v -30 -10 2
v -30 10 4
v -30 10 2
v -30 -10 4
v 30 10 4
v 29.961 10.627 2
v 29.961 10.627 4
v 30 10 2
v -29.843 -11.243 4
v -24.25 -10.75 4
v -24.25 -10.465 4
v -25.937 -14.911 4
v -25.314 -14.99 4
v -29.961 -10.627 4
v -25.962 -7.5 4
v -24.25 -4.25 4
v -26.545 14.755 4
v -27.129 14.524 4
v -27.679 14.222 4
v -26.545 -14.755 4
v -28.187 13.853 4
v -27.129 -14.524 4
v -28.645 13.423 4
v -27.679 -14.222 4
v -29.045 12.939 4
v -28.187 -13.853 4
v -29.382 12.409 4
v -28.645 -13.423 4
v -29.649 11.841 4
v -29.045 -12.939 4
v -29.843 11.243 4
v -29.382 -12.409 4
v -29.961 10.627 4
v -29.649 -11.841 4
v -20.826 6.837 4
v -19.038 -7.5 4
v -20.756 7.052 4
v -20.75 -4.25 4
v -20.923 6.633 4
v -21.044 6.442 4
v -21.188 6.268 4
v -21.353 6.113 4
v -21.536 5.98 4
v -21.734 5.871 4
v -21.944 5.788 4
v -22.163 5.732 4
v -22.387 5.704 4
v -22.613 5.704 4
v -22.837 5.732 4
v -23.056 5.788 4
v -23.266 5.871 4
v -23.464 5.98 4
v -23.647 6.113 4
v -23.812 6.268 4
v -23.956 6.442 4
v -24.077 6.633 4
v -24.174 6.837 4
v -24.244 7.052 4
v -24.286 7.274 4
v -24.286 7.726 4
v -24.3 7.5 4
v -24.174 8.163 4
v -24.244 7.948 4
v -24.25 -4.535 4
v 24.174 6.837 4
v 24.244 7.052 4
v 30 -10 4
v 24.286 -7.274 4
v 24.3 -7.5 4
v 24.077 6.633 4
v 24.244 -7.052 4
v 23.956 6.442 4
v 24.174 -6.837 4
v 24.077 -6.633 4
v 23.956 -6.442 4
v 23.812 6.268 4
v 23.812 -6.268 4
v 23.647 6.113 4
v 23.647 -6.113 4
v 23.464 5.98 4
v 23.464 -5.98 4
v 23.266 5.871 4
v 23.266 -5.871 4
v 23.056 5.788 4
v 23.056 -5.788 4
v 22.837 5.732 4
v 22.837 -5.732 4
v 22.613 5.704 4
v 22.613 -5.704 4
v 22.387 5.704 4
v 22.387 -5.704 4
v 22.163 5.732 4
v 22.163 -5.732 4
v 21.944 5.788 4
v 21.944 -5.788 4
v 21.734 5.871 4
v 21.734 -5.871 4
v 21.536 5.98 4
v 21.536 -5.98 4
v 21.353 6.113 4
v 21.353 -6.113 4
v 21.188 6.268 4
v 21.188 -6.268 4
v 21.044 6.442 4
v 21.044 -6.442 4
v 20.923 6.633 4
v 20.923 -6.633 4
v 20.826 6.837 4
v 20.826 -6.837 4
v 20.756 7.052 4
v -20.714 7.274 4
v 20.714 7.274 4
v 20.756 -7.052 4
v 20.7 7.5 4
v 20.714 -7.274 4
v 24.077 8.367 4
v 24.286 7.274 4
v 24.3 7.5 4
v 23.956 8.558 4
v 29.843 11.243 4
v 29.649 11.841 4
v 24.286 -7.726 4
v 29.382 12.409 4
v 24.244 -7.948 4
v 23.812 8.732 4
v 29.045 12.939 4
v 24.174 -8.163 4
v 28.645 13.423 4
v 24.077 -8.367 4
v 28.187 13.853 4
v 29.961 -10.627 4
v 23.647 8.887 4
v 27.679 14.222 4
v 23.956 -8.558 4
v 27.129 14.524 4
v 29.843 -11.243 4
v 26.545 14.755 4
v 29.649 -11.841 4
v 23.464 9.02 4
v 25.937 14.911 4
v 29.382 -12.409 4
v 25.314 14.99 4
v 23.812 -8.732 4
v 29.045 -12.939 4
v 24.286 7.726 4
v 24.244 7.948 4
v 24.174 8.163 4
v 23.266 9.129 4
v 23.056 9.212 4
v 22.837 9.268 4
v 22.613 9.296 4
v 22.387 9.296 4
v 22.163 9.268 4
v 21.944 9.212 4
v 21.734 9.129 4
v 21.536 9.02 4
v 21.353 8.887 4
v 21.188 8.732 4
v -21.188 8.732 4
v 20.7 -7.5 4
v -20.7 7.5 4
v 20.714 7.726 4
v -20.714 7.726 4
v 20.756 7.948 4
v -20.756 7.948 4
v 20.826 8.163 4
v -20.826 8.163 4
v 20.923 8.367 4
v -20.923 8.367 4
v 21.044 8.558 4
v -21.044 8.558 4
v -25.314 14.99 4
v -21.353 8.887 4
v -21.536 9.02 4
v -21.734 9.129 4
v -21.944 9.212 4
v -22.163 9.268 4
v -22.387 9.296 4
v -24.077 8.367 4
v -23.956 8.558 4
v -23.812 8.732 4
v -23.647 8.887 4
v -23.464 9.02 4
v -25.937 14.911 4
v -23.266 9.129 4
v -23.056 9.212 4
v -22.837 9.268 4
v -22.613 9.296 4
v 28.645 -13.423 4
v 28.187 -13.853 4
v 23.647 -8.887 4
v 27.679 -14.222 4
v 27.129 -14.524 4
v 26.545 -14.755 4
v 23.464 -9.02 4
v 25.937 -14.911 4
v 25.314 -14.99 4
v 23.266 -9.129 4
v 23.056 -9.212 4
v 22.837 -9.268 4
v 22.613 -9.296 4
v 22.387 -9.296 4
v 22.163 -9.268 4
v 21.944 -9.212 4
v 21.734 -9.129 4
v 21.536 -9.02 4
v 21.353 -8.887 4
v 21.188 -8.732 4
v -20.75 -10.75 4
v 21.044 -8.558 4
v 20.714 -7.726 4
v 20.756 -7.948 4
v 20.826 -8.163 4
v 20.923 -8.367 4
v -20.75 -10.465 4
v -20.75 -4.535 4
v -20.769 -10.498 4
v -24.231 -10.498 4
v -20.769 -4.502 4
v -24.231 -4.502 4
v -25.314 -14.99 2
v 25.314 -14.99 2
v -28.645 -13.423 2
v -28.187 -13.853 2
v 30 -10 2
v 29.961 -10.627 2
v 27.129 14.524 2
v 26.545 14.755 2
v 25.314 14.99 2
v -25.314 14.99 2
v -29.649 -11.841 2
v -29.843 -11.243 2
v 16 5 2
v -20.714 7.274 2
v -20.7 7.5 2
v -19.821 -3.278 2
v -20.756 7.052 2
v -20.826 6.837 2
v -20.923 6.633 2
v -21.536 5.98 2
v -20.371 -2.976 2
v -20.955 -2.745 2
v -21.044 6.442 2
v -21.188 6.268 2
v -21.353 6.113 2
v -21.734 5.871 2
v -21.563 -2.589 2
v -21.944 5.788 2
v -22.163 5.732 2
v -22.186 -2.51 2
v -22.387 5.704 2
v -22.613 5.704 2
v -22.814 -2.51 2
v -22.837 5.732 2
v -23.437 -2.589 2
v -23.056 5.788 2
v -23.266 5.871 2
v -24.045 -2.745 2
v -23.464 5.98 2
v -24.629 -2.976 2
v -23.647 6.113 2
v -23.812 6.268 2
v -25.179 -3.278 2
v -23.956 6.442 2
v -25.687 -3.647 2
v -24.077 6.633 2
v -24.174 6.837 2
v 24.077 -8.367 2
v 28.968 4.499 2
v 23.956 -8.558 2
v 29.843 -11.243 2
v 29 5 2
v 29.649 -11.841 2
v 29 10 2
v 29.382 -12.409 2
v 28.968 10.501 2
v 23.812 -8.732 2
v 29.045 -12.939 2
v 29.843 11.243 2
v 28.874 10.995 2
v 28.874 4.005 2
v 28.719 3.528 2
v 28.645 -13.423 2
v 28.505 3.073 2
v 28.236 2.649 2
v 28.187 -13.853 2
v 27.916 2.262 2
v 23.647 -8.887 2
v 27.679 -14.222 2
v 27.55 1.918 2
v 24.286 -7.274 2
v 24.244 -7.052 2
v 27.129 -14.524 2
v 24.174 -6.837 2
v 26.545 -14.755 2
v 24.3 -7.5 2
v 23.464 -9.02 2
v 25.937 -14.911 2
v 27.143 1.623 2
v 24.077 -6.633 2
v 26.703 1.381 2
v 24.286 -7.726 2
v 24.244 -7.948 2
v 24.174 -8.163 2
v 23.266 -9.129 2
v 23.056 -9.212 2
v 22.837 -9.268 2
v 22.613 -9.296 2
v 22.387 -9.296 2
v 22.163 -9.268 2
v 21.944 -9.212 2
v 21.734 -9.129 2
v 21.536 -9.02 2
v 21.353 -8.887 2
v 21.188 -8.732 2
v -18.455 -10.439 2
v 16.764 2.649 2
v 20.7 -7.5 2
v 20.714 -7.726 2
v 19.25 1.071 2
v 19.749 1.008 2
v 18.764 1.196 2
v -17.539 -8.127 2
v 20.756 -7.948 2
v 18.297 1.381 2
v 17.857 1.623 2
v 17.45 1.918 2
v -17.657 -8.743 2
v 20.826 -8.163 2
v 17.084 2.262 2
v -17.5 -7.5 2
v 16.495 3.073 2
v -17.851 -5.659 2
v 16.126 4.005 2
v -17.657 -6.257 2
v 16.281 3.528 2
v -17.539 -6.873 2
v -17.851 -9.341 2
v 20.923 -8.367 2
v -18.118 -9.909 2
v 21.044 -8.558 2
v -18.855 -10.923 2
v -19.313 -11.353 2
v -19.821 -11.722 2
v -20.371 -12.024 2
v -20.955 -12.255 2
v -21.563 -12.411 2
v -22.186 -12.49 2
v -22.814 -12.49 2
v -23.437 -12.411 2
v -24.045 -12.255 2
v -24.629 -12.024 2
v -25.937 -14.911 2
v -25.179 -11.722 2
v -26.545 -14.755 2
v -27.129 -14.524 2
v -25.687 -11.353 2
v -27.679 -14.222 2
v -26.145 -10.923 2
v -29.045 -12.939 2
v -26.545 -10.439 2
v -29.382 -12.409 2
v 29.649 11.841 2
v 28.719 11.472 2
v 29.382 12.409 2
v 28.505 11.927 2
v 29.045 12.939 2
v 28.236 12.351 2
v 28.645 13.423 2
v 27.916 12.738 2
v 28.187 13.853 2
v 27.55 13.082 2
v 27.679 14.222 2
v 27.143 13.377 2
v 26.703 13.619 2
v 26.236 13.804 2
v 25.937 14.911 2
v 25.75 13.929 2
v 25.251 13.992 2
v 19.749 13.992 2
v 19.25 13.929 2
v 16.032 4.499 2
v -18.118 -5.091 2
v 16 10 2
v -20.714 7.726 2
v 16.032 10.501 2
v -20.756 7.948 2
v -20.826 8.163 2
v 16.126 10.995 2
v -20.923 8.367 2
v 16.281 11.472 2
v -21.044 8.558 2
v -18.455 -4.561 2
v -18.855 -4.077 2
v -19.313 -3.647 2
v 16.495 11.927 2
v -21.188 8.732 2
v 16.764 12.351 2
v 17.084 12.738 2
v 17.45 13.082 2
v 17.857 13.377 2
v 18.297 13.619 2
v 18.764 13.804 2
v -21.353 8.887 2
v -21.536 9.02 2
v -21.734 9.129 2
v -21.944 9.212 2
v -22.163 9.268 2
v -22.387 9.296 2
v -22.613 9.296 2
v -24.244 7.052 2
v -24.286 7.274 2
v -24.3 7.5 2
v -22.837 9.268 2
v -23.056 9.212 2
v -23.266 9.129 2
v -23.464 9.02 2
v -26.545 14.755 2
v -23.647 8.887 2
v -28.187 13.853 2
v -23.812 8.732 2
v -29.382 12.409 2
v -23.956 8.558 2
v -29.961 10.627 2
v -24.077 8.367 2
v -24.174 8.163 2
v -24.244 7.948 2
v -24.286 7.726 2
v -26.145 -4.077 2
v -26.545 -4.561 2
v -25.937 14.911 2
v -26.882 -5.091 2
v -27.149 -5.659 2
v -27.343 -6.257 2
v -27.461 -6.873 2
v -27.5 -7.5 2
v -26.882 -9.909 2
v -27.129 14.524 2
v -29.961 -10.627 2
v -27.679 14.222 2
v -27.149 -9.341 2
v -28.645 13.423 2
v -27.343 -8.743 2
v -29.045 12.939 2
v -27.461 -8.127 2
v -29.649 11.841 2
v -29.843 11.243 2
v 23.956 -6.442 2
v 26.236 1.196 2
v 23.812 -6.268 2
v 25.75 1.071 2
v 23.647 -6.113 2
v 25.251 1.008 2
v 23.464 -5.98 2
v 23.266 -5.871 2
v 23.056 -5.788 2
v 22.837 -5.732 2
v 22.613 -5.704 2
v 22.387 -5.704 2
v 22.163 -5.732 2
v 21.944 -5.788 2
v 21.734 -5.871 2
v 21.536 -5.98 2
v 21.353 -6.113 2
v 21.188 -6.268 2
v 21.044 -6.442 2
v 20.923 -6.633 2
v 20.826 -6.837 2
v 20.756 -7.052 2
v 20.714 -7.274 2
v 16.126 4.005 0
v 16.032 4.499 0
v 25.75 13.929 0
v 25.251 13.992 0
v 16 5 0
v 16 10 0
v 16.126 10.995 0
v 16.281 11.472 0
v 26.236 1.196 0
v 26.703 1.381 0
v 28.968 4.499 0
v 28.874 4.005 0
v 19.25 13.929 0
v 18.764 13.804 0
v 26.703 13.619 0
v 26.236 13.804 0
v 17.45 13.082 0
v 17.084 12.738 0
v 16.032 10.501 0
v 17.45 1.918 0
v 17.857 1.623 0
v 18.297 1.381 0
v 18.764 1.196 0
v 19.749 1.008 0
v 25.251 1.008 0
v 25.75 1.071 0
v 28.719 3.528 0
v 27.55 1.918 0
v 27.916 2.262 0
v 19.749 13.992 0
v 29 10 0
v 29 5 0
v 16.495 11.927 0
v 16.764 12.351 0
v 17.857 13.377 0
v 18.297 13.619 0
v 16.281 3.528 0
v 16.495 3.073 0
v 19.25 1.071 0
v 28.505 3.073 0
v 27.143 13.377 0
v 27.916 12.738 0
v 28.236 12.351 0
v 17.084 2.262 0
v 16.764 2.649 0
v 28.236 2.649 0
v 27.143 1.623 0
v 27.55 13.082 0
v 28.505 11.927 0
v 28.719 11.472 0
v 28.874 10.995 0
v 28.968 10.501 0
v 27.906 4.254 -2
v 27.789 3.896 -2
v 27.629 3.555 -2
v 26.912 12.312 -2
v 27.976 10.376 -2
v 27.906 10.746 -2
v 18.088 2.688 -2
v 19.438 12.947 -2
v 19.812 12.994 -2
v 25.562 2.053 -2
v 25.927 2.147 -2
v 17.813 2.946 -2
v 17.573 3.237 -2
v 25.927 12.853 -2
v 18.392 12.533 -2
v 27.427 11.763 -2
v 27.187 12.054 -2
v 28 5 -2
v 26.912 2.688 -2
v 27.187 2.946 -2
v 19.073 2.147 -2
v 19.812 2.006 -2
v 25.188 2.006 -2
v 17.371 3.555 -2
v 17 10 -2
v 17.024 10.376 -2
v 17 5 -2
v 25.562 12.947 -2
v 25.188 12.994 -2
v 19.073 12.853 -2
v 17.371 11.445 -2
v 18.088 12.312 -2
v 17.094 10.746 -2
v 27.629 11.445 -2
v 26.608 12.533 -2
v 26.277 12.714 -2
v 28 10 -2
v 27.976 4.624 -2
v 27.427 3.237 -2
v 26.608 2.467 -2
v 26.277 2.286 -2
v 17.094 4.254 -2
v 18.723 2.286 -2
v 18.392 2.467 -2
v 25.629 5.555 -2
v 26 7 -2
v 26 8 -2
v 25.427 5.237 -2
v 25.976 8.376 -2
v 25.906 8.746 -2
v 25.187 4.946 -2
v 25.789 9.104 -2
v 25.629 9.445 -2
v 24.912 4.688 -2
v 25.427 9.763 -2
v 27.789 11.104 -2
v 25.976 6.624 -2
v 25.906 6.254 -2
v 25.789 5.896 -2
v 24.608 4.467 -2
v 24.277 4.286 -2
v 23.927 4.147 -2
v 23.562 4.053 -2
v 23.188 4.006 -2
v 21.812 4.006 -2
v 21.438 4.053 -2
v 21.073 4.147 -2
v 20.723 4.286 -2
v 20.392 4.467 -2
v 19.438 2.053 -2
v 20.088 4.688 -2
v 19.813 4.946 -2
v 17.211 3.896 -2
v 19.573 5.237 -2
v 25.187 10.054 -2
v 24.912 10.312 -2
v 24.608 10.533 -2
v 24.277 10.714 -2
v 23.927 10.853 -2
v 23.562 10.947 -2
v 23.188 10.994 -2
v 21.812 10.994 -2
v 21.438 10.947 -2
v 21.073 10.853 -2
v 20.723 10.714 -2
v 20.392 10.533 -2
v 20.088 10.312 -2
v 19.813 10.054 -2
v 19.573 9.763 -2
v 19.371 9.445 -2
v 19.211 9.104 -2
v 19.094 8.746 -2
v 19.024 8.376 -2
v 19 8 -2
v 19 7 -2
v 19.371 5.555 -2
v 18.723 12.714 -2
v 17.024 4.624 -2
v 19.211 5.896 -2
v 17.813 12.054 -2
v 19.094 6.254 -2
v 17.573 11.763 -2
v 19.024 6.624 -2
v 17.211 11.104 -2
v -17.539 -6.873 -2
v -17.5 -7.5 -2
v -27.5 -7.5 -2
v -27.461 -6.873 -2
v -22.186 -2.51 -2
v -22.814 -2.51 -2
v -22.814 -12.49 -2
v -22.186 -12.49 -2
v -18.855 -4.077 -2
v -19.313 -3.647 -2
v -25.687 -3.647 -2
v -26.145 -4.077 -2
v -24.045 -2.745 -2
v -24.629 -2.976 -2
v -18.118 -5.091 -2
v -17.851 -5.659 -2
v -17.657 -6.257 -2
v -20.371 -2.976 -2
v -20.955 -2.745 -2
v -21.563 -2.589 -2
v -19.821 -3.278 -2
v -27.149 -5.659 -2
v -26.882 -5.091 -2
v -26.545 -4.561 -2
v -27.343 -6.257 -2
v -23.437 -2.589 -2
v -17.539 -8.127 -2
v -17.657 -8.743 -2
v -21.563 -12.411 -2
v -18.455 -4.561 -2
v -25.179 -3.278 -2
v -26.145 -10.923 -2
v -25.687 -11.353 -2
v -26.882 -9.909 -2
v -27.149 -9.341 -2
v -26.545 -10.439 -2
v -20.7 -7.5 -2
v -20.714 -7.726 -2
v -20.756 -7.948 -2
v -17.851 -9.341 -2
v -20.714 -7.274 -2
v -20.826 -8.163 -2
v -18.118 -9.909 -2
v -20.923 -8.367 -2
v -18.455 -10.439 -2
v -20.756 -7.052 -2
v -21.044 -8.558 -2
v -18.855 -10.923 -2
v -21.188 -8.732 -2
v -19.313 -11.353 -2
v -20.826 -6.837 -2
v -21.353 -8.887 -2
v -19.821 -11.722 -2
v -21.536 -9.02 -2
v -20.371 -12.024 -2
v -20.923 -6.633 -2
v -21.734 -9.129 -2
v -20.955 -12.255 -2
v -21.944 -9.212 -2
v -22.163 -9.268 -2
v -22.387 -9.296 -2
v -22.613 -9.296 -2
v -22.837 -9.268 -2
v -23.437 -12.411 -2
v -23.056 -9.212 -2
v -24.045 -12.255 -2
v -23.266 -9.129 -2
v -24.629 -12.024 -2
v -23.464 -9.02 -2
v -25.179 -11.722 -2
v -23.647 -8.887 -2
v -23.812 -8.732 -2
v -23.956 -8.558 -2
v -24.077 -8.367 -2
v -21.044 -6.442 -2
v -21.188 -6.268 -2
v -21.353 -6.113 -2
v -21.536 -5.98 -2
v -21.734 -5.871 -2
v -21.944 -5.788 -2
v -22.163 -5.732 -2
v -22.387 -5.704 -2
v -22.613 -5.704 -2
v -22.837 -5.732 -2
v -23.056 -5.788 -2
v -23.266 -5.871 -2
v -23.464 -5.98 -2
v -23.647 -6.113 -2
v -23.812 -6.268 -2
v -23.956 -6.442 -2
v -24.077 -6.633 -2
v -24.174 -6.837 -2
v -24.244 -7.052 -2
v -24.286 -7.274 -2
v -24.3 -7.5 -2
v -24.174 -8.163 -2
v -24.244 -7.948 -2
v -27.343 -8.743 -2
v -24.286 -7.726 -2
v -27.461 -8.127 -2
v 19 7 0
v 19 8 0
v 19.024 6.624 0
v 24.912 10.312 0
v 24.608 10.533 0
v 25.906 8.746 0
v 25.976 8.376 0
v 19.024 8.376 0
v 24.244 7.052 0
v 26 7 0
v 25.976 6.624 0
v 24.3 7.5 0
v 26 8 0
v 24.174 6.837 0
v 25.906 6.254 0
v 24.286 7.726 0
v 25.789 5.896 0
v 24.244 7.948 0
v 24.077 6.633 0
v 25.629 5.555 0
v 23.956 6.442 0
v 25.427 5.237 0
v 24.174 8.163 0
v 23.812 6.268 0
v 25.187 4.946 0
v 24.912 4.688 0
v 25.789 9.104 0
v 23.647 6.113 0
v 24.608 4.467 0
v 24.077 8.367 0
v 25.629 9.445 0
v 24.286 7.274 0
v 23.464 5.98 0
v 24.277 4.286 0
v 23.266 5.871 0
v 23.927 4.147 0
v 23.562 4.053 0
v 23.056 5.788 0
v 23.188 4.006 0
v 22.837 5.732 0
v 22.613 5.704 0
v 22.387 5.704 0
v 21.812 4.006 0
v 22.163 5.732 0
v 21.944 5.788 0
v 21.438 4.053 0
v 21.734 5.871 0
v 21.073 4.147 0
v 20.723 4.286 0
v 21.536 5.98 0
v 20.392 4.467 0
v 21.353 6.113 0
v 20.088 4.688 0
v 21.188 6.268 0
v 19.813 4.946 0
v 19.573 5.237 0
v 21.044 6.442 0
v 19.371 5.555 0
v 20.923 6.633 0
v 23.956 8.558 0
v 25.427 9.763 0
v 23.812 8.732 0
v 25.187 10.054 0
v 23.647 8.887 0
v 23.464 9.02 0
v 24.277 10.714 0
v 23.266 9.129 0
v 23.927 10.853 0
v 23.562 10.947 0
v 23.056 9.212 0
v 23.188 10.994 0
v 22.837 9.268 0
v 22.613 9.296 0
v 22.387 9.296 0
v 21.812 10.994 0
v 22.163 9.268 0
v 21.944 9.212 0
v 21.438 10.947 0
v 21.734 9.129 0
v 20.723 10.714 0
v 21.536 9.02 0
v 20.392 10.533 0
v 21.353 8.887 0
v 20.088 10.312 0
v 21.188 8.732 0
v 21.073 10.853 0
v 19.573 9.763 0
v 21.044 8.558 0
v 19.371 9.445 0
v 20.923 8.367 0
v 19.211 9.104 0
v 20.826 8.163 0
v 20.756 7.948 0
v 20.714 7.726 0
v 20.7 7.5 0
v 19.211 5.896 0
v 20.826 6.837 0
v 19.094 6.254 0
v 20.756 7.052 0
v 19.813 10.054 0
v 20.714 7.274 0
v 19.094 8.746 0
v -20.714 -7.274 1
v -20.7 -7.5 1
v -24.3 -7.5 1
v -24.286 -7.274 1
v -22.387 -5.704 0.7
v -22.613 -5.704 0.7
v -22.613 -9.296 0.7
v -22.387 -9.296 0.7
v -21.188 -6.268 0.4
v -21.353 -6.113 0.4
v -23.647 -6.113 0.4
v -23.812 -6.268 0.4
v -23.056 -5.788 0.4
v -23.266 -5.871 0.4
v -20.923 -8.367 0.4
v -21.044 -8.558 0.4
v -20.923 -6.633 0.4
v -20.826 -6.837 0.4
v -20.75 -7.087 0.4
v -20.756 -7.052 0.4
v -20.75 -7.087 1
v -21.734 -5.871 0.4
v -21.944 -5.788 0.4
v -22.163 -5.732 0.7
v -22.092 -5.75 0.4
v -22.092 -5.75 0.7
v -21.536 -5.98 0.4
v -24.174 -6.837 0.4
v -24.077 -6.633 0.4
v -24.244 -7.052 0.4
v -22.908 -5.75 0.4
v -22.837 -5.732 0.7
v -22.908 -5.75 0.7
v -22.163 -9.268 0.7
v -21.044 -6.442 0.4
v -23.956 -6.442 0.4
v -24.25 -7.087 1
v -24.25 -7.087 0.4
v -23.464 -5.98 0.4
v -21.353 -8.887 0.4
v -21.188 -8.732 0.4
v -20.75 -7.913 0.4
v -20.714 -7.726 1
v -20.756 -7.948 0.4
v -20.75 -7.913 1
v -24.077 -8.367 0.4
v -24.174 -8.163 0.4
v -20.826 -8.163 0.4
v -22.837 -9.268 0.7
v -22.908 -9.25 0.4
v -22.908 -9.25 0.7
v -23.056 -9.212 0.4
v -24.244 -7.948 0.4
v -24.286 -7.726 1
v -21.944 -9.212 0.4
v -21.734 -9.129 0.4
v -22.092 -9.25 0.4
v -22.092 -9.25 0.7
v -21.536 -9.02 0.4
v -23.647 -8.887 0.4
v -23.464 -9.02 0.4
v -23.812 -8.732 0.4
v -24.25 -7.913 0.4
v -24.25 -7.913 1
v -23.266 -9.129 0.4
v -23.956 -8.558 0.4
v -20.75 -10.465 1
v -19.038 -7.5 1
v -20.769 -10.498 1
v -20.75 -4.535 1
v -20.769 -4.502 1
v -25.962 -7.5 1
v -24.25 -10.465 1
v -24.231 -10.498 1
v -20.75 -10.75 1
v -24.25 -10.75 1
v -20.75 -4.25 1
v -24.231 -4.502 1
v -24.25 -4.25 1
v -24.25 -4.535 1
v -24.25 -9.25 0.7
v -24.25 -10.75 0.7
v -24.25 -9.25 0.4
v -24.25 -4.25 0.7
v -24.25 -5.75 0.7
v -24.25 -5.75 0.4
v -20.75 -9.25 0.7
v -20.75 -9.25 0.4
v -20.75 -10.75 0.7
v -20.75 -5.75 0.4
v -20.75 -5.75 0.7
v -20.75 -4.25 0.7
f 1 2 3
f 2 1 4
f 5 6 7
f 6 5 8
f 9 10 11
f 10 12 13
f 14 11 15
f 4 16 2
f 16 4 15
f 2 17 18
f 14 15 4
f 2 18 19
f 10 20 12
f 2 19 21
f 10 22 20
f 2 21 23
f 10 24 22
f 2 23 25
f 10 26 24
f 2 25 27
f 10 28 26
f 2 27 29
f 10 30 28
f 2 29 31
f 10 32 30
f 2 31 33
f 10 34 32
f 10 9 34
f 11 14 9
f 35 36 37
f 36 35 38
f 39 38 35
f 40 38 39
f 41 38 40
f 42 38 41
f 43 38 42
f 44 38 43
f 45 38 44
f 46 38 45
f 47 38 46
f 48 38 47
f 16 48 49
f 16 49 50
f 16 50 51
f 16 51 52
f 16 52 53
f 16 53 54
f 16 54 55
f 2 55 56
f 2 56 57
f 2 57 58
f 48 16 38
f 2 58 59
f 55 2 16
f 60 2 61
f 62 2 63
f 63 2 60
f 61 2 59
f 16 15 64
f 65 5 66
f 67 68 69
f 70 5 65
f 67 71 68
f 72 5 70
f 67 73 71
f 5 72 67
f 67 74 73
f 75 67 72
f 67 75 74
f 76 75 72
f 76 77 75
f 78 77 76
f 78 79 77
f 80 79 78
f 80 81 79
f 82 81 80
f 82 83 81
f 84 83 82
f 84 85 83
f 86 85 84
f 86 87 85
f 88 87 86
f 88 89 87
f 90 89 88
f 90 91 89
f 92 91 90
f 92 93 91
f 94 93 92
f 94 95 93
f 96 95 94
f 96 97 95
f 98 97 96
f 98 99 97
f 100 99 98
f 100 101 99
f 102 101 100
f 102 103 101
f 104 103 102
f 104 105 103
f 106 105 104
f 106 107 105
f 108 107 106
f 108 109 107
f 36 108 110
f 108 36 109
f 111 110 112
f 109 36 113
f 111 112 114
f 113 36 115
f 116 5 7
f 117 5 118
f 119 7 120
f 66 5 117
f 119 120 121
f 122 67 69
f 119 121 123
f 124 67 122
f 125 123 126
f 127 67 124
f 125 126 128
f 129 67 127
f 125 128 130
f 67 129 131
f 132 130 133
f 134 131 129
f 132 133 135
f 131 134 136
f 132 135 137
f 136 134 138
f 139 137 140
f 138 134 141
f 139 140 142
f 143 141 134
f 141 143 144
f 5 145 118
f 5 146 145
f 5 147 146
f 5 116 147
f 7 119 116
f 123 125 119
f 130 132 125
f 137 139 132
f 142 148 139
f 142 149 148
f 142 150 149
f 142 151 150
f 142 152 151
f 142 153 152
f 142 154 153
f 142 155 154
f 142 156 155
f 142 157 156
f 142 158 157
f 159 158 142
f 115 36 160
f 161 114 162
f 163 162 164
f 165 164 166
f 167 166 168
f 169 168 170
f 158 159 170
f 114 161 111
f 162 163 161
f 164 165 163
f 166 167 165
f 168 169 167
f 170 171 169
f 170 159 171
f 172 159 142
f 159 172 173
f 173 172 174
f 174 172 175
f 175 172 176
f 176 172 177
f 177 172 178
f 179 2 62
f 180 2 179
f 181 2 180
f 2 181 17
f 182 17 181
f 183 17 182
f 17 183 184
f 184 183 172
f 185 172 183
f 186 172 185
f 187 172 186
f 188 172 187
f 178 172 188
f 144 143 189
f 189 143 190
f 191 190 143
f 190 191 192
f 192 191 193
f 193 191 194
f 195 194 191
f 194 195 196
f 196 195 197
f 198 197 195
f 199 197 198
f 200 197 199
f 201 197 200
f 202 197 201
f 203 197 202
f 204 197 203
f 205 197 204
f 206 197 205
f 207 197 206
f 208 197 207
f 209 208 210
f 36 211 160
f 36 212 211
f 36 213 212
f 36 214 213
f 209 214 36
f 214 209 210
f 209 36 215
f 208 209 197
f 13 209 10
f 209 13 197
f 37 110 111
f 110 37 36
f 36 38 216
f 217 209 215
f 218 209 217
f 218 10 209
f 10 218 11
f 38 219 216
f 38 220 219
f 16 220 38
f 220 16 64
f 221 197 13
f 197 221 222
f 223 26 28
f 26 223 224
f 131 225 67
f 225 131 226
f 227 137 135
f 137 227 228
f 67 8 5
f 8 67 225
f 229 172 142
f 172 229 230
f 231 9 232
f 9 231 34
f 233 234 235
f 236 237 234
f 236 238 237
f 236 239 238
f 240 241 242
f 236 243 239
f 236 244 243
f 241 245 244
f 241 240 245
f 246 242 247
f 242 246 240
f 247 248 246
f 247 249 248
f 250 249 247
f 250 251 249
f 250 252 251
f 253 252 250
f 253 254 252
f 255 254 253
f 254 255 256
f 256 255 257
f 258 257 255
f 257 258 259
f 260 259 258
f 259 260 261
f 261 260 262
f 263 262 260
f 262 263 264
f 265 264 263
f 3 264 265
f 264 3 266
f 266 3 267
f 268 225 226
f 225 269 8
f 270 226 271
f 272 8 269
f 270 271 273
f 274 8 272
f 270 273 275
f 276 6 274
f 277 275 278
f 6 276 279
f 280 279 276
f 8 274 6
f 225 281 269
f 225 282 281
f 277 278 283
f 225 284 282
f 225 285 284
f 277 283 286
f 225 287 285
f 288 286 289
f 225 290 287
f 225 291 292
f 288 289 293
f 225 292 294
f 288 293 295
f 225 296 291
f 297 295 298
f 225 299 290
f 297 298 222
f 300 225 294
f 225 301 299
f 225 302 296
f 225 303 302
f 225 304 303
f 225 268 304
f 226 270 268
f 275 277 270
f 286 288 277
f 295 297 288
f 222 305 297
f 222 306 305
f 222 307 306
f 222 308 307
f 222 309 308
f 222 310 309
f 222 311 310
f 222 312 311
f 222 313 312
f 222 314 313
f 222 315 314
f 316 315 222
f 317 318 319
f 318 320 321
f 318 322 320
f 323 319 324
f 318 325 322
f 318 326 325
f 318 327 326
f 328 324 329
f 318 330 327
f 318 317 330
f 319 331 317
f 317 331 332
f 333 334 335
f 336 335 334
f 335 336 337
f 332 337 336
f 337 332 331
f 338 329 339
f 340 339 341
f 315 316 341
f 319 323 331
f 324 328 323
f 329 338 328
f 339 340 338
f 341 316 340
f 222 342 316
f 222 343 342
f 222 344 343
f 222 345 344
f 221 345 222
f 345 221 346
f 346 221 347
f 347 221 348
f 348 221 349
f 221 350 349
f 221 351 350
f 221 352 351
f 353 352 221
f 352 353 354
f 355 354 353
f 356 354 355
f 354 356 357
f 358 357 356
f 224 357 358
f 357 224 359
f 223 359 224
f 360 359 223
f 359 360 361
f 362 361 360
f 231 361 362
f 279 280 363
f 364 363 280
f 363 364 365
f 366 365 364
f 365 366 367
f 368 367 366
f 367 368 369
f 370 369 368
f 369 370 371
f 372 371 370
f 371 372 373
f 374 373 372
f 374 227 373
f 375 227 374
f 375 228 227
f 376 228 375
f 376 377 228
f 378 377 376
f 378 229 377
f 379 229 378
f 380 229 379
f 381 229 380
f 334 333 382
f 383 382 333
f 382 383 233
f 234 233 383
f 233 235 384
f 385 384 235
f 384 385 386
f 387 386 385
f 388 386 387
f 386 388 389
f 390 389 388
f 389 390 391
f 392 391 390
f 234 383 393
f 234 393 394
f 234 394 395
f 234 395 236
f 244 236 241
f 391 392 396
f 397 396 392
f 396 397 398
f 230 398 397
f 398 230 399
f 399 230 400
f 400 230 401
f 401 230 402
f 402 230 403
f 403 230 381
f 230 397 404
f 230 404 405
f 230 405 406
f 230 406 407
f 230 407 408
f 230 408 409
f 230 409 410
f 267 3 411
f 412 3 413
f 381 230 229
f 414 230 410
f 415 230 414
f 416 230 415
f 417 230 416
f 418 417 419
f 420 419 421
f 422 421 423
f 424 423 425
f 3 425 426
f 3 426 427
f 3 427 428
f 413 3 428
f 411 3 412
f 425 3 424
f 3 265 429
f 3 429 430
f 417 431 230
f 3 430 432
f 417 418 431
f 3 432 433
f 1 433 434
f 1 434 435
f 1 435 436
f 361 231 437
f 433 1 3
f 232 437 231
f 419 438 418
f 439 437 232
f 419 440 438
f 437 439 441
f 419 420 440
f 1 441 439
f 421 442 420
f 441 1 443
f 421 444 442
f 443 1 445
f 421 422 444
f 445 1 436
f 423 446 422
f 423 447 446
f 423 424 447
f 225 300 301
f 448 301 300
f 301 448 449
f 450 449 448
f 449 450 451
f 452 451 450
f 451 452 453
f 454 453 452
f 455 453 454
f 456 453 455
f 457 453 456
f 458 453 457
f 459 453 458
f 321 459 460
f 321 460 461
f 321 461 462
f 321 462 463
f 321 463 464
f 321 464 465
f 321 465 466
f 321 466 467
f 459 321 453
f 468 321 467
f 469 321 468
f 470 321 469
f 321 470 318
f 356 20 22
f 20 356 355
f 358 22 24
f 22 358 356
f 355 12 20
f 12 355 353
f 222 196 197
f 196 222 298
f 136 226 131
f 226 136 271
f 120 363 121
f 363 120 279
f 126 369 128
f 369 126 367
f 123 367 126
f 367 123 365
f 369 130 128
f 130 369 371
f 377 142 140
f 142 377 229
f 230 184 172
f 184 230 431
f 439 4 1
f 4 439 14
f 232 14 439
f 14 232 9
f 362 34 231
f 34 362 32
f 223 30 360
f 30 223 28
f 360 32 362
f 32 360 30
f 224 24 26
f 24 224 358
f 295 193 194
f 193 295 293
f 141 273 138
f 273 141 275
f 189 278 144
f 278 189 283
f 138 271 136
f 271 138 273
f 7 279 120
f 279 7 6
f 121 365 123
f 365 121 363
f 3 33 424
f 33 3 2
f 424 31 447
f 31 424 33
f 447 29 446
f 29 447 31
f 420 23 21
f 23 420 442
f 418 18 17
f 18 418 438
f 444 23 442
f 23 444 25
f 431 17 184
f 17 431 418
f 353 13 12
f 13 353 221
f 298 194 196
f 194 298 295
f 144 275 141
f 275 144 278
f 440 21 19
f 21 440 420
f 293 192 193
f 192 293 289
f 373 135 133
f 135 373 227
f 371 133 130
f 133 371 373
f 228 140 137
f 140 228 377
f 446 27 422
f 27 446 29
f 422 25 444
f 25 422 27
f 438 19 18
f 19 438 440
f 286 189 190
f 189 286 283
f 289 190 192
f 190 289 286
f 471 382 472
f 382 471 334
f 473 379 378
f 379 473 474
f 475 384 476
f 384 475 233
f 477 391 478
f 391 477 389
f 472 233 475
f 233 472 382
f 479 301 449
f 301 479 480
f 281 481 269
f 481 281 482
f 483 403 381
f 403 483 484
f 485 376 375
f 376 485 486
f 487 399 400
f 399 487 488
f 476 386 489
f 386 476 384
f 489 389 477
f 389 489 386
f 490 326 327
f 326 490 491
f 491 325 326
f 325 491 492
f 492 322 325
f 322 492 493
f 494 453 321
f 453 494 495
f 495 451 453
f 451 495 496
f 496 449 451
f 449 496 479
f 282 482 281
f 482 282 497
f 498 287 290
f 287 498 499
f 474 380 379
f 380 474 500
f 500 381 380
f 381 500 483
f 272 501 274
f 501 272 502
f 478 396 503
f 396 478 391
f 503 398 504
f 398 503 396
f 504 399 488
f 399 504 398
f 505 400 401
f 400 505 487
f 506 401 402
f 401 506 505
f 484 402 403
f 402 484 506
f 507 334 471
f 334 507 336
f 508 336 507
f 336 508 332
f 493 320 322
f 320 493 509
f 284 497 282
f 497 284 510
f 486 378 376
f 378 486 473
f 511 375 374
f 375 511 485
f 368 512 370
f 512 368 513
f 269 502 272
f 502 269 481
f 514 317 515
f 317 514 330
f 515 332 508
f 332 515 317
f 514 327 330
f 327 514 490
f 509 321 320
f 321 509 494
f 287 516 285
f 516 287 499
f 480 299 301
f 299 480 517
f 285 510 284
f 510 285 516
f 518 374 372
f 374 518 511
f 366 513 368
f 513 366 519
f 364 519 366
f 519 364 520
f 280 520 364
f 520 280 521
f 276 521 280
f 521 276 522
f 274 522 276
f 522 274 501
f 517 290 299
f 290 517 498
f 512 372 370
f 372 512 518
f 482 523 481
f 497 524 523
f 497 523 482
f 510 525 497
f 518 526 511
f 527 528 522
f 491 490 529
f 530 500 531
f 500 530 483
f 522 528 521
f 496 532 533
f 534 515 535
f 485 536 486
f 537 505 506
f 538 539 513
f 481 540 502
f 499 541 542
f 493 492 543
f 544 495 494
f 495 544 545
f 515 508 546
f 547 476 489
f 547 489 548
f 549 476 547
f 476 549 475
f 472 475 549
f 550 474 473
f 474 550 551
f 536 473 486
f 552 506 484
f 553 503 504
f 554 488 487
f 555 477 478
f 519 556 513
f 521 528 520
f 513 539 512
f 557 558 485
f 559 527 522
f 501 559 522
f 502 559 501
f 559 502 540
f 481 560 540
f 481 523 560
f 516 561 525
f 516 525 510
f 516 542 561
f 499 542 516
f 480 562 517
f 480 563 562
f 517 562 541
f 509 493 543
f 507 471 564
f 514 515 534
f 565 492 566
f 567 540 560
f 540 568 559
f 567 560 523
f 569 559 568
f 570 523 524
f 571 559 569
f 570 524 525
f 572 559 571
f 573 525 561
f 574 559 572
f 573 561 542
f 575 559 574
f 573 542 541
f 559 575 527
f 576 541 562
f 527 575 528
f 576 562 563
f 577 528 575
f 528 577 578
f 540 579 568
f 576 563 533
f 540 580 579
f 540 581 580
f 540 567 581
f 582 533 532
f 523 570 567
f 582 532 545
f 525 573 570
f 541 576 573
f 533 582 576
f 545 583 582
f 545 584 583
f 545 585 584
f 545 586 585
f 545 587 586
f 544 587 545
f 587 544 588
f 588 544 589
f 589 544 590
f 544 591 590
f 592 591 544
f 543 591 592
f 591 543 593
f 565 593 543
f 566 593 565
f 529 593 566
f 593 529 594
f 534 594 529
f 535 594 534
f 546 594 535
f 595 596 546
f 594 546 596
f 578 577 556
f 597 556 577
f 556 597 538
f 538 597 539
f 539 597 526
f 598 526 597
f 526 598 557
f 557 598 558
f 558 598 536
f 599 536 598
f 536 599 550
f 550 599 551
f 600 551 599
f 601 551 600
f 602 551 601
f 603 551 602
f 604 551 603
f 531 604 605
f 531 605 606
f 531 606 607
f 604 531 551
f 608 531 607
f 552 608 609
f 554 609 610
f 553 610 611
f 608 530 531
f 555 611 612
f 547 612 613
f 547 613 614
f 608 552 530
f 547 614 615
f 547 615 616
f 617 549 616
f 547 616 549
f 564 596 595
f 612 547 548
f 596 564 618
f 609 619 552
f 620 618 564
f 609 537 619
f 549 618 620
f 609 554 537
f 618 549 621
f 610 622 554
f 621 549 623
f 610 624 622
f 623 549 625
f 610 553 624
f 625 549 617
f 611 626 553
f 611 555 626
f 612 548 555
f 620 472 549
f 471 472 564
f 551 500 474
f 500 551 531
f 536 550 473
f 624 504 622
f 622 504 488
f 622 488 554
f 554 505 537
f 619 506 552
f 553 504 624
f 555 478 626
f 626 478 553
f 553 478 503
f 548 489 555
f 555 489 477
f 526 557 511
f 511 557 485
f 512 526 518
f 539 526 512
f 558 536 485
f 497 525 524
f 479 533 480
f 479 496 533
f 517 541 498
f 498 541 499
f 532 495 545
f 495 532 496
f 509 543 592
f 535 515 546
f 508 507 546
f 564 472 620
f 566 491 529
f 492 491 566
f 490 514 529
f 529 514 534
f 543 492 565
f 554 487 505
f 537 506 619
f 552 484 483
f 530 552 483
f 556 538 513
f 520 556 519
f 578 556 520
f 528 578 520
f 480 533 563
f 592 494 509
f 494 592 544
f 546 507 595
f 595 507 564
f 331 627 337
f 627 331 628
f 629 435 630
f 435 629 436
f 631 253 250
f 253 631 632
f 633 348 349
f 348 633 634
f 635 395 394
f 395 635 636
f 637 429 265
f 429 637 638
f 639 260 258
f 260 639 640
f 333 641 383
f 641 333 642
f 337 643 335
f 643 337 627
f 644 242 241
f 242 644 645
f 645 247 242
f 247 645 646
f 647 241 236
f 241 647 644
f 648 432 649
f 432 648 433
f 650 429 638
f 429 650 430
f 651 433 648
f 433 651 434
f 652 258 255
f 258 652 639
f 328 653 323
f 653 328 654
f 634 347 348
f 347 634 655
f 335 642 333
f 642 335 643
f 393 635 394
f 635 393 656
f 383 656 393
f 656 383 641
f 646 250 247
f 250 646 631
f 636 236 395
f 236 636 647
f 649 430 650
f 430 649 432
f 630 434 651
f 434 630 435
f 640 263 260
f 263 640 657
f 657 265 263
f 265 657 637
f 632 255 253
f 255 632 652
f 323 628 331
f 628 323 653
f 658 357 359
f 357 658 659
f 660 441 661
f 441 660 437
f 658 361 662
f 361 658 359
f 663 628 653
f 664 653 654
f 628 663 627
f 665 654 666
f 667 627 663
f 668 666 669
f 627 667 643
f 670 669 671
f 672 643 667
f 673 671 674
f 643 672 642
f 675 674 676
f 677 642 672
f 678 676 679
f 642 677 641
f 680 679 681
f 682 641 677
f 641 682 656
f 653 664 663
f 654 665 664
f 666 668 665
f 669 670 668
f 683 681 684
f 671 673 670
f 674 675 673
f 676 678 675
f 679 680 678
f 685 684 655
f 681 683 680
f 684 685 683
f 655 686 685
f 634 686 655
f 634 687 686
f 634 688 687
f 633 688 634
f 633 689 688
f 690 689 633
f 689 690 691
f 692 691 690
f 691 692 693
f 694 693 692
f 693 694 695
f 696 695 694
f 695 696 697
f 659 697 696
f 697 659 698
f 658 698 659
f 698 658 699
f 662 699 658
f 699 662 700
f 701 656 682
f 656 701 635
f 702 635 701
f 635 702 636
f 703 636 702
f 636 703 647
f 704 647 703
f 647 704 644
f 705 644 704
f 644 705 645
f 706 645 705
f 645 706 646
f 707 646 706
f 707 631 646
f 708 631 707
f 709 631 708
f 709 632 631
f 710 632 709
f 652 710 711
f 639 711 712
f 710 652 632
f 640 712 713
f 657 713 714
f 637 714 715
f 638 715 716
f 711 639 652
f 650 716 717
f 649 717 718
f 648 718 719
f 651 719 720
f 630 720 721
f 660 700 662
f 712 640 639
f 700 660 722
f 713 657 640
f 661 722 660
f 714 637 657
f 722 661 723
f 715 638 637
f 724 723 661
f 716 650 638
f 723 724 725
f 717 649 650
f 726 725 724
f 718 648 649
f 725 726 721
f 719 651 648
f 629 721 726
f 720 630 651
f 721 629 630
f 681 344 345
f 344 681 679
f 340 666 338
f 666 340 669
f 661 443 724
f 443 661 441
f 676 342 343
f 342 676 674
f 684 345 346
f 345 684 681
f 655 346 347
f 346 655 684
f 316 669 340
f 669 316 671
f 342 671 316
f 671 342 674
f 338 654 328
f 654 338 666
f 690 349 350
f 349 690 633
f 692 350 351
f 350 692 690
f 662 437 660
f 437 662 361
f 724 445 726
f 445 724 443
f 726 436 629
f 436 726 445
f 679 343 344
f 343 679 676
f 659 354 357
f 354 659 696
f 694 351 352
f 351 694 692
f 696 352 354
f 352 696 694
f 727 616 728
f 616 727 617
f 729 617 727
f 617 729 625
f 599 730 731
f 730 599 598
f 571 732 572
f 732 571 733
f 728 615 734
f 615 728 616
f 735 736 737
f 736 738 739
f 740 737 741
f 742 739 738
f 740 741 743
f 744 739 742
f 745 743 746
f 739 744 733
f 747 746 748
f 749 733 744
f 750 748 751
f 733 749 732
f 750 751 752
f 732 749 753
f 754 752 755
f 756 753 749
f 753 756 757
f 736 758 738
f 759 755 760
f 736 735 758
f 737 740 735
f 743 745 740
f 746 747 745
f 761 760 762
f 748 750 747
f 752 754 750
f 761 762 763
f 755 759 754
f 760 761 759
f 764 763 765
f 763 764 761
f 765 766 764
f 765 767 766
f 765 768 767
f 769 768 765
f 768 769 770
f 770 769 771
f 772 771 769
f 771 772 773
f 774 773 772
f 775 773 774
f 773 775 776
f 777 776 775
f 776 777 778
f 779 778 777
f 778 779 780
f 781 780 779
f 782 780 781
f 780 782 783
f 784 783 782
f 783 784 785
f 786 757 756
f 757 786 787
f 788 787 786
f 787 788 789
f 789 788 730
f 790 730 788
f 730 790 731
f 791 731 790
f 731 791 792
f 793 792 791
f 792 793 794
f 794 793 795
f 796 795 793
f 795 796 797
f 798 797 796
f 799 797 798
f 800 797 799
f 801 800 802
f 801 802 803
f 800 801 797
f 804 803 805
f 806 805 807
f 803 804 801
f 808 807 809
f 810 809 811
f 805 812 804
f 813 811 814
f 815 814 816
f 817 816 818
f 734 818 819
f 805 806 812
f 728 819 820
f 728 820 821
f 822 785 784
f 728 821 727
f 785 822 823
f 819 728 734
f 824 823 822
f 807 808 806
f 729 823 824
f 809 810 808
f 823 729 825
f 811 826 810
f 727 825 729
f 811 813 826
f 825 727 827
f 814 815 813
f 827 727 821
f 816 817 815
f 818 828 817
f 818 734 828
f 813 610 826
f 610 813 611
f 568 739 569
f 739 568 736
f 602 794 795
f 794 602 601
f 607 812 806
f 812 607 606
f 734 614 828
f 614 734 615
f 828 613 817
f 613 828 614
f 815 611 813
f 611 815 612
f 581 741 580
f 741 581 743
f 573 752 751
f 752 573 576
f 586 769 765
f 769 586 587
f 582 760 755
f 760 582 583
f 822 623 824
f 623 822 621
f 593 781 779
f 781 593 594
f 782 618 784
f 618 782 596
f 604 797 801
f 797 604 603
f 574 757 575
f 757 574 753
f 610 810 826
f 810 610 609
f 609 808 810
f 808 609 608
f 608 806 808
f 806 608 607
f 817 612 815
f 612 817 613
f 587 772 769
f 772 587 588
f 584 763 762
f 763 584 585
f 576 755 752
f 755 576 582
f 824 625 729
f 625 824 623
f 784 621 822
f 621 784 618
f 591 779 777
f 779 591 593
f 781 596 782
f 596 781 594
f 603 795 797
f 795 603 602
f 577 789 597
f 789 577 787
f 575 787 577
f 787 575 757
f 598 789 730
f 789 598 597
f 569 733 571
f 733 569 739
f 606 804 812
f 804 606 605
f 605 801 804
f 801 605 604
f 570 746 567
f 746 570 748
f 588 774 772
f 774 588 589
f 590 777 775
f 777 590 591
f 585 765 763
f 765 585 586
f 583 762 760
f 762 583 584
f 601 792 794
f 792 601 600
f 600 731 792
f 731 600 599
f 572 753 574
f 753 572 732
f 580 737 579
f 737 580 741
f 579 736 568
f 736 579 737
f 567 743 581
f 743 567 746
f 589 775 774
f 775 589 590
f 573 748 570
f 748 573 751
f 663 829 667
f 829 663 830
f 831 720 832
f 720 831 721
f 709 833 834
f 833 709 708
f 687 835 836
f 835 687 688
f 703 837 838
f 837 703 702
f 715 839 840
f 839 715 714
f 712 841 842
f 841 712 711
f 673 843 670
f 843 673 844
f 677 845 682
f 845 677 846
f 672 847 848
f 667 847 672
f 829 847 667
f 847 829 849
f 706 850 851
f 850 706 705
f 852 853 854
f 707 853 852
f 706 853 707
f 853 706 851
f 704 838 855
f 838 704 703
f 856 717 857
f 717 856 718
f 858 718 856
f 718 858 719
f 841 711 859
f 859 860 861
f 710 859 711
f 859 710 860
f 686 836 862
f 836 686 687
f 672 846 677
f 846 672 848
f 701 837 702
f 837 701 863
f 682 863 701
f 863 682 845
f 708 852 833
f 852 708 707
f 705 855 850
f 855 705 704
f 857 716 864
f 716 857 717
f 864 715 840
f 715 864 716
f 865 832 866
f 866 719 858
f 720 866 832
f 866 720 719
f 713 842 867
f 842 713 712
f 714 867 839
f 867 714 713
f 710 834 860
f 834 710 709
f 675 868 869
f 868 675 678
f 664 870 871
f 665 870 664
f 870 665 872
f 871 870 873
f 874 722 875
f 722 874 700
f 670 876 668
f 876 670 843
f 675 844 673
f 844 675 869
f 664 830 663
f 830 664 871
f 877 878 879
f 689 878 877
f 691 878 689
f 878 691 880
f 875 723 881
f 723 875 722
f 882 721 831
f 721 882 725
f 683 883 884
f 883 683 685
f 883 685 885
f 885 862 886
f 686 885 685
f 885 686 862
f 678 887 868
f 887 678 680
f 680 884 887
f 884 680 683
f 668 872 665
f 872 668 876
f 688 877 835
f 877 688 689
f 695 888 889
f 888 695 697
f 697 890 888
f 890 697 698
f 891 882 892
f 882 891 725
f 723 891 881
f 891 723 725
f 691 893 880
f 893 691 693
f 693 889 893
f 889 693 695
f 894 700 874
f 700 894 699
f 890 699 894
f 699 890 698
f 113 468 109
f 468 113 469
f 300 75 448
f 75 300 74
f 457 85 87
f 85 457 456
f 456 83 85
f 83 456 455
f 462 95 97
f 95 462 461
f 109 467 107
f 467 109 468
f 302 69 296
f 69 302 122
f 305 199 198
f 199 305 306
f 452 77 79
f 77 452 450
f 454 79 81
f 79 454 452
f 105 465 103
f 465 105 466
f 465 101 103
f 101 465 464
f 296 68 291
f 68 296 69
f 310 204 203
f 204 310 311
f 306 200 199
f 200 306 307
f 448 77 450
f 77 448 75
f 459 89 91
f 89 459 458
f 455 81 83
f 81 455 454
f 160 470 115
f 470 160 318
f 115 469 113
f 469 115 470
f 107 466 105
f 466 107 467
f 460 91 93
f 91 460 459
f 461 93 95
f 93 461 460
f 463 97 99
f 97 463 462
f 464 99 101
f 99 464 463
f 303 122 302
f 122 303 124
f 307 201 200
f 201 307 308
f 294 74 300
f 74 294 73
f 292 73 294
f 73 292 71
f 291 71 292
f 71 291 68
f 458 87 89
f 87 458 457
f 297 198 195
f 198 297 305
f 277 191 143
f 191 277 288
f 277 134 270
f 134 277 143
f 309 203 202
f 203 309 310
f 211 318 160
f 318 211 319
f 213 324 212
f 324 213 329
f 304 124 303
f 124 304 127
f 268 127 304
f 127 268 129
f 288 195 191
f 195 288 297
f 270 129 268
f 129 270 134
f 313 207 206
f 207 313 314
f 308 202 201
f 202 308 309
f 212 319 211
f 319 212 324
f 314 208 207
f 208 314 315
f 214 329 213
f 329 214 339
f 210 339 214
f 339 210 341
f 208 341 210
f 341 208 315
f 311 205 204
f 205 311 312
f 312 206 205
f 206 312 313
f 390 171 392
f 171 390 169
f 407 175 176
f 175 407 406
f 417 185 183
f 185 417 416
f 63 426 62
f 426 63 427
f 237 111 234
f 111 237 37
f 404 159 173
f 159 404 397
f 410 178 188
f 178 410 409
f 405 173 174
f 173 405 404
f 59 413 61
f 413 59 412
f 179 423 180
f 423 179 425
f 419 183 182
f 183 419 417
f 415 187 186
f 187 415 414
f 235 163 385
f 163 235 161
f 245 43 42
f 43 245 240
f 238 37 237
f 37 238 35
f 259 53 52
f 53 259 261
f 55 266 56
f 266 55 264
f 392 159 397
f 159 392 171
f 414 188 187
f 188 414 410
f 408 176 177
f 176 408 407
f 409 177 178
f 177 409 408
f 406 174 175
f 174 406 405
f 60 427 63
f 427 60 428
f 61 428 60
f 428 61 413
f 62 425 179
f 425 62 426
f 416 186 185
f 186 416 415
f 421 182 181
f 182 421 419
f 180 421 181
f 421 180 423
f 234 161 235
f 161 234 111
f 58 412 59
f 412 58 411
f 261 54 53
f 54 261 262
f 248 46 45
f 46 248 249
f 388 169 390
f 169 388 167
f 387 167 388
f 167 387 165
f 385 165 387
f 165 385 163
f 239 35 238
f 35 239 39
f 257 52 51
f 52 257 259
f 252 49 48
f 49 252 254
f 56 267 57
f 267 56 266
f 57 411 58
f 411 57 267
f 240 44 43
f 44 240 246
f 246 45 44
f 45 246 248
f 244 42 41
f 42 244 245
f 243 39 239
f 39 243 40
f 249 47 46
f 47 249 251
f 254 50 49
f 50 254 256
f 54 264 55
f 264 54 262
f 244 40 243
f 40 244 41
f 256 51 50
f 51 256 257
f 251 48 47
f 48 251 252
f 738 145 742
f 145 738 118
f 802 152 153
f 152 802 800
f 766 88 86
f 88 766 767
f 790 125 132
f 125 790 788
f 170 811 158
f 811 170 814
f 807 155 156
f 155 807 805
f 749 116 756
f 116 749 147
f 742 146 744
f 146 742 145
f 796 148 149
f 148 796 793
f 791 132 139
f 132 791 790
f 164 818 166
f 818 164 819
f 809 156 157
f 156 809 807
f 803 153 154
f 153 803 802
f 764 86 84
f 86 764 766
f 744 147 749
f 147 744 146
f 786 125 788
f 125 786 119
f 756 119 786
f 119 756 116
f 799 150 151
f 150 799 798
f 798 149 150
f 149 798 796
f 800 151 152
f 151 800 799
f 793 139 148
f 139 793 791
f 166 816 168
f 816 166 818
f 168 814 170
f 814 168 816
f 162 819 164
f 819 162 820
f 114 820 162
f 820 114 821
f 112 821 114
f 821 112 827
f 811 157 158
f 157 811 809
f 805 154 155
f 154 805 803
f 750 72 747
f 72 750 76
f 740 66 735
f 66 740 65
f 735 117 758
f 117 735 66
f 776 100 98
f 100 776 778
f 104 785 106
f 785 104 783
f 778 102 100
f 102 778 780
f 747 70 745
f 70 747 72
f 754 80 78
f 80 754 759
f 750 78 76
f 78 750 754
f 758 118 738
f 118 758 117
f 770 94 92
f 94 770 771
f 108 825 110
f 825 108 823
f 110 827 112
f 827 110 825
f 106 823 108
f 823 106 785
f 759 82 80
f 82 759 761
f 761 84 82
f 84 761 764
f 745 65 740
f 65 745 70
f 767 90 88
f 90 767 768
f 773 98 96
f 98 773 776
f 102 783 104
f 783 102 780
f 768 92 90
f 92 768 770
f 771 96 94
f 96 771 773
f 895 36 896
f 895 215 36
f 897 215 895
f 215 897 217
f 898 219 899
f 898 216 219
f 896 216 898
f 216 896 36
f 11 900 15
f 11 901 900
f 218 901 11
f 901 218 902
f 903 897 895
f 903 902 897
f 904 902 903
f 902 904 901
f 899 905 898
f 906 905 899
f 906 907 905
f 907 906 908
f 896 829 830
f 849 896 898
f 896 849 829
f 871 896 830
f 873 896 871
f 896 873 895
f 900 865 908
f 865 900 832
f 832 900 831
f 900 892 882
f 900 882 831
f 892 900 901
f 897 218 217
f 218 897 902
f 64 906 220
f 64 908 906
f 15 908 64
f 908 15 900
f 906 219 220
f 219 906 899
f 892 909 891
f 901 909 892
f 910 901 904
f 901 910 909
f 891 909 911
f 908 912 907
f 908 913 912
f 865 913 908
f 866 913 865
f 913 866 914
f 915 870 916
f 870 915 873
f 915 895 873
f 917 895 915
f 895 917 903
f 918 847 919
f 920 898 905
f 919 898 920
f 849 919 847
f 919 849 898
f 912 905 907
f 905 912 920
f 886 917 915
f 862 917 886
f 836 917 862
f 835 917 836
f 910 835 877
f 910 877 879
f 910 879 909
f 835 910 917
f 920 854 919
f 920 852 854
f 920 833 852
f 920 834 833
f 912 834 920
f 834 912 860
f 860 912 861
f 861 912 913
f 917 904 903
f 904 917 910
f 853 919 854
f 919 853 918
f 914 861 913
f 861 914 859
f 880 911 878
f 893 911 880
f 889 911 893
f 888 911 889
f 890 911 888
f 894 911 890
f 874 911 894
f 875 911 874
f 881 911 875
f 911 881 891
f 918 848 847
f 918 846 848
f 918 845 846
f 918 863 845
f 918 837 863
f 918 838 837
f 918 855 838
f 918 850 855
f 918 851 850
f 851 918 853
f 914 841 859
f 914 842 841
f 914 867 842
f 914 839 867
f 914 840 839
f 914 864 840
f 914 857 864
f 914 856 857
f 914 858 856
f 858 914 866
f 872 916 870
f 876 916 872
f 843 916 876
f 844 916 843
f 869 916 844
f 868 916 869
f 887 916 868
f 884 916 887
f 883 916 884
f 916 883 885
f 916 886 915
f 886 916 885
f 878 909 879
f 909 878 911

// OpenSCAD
$fn = 50;


difference() {
	union() {
		translate(v = [0, 0, 2]) {
			rotate(a = [0, 0, 0]) {
				hull() {
					translate(v = [-25.0000000000, 10.0000000000, 0]) {
						rotate(a = [0, 0, 0]) {
							translate(v = [0, 0, 0]) {
								rotate(a = [0, 0, 0]) {
									cylinder(h = 2, r = 5);
								}
							}
						}
					}
					translate(v = [25.0000000000, 10.0000000000, 0]) {
						rotate(a = [0, 0, 0]) {
							translate(v = [0, 0, 0]) {
								rotate(a = [0, 0, 0]) {
									cylinder(h = 2, r = 5);
								}
							}
						}
					}
					translate(v = [-25.0000000000, -10.0000000000, 0]) {
						rotate(a = [0, 0, 0]) {
							translate(v = [0, 0, 0]) {
								rotate(a = [0, 0, 0]) {
									cylinder(h = 2, r = 5);
								}
							}
						}
					}
					translate(v = [25.0000000000, -10.0000000000, 0]) {
						rotate(a = [0, 0, 0]) {
							translate(v = [0, 0, 0]) {
								rotate(a = [0, 0, 0]) {
									cylinder(h = 2, r = 5);
								}
							}
						}
					}
				}
			}
		}
		translate(v = [22.5000000000, 7.5000000000, 0]) {
			rotate(a = [0, 0, 0]) {
				hull() {
					translate(v = [-2.5000000000, 2.5000000000, 0]) {
						rotate(a = [0, 0, 0]) {
							cylinder(h = 2, r1 = 4.0000000000, r2 = 4.0000000000);
						}
					}
					translate(v = [2.5000000000, 2.5000000000, 0]) {
						rotate(a = [0, 0, 0]) {
							cylinder(h = 2, r1 = 4.0000000000, r2 = 4.0000000000);
						}
					}
					translate(v = [-2.5000000000, -2.5000000000, 0]) {
						rotate(a = [0, 0, 0]) {
							cylinder(h = 2, r1 = 4.0000000000, r2 = 4.0000000000);
						}
					}
					translate(v = [2.5000000000, -2.5000000000, 0]) {
						rotate(a = [0, 0, 0]) {
							cylinder(h = 2, r1 = 4.0000000000, r2 = 4.0000000000);
						}
					}
				}
			}
		}
		translate(v = [22.5000000000, 7.5000000000, -2]) {
			rotate(a = [0, 180, 0]) {
				hull() {
					translate(v = [-2.5000000000, 2.5000000000, 0]) {
						rotate(a = [0, 180, 0]) {
							cylinder(h = 2, r1 = 3.0000000000, r2 = 4.0000000000);
						}
					}
					translate(v = [2.5000000000, 2.5000000000, 0]) {
						rotate(a = [0, 180, 0]) {
							cylinder(h = 2, r1 = 3.0000000000, r2 = 4.0000000000);
						}
					}
					translate(v = [-2.5000000000, -2.5000000000, 0]) {
						rotate(a = [0, 180, 0]) {
							cylinder(h = 2, r1 = 3.0000000000, r2 = 4.0000000000);
						}
					}
					translate(v = [2.5000000000, -2.5000000000, 0]) {
						rotate(a = [0, 180, 0]) {
							cylinder(h = 2, r1 = 3.0000000000, r2 = 4.0000000000);
						}
					}
				}
			}
		}
		translate(v = [-22.5000000000, -7.5000000000, -2.0000000000]) {
			rotate(a = [0, 0, 0]) {
				cylinder(h = 4, r = 5);
			}
		}
	}
	union() {
		translate(v = [22.5000000000, 7.5000000000, -2]) {
			rotate(a = [0, 0, 0]) {
				hull() {
					translate(v = [-0.5000000000, 0.5000000000, 0]) {
						rotate(a = [0, 0, 0]) {
							translate(v = [0, 0, 0]) {
								rotate(a = [0, 0, 0]) {
									cylinder(h = 2, r = 3.0000000000);
								}
							}
						}
					}
					translate(v = [0.5000000000, 0.5000000000, 0]) {
						rotate(a = [0, 0, 0]) {
							translate(v = [0, 0, 0]) {
								rotate(a = [0, 0, 0]) {
									cylinder(h = 2, r = 3.0000000000);
								}
							}
						}
					}
					translate(v = [-0.5000000000, -0.5000000000, 0]) {
						rotate(a = [0, 0, 0]) {
							translate(v = [0, 0, 0]) {
								rotate(a = [0, 0, 0]) {
									cylinder(h = 2, r = 3.0000000000);
								}
							}
						}
					}
					translate(v = [0.5000000000, -0.5000000000, 0]) {
						rotate(a = [0, 0, 0]) {
							translate(v = [0, 0, 0]) {
								rotate(a = [0, 0, 0]) {
									cylinder(h = 2, r = 3.0000000000);
								}
							}
						}
					}
				}
			}
		}
		translate(v = [-22.5000000000, -7.5000000000, -50]) {
			rotate(a = [0, 0, 0]) {
				cylinder(h = 100, r = 1.8000000000);
			}
		}
		translate(v = [22.5000000000, -7.5000000000, -50]) {
			rotate(a = [0, 0, 0]) {
				cylinder(h = 100, r = 1.8000000000);
			}
		}
		translate(v = [-22.5000000000, 7.5000000000, -50]) {
			rotate(a = [0, 0, 0]) {
				cylinder(h = 100, r = 1.8000000000);
			}
		}
		translate(v = [22.5000000000, 7.5000000000, -50]) {
			rotate(a = [0, 0, 0]) {
				cylinder(h = 100, r = 1.8000000000);
			}
		}
		translate(v = [-22.5000000000, -7.5000000000, 1]) {
			rotate(a = [0, 0, 0]) {
				#translate(v = [0, 0, 0]) {
					rotate(a = [0, 0, 0]) {
						linear_extrude(height = 3) {
							polygon(points = [[3.4620000000, 0.0000000000], [1.7310000000, 2.9981799479], [-1.7310000000, 2.9981799479], [-3.4620000000, 0.0000000000], [-1.7310000000, -2.9981799479], [1.7310000000, -2.9981799479]]);
						}
					}
				}
			}
		}
		#translate(v = [-24.2500000000, -10.7500000000, 4]) {
			rotate(a = [0, 0, 0]) {
				cube(size = [3.5000000000, 6.5000000000, 0.3000000000]);
			}
		}
		#translate(v = [-24.2500000000, -9.2500000000, 4.3000000000]) {
			rotate(a = [0, 0, 0]) {
				cube(size = [3.5000000000, 3.5000000000, 0.3000000000]);
			}
		}
		#translate(v = [-24.2500000000, -10.7500000000, 0.7000000000]) {
			rotate(a = [0, 0, 0]) {
				cube(size = [3.5000000000, 6.5000000000, 0.3000000000]);
			}
		}
		#translate(v = [-24.2500000000, -9.2500000000, 0.4000000000]) {
			rotate(a = [0, 0, 0]) {
				cube(size = [3.5000000000, 3.5000000000, 0.3000000000]);
			}
		}
	}
}
